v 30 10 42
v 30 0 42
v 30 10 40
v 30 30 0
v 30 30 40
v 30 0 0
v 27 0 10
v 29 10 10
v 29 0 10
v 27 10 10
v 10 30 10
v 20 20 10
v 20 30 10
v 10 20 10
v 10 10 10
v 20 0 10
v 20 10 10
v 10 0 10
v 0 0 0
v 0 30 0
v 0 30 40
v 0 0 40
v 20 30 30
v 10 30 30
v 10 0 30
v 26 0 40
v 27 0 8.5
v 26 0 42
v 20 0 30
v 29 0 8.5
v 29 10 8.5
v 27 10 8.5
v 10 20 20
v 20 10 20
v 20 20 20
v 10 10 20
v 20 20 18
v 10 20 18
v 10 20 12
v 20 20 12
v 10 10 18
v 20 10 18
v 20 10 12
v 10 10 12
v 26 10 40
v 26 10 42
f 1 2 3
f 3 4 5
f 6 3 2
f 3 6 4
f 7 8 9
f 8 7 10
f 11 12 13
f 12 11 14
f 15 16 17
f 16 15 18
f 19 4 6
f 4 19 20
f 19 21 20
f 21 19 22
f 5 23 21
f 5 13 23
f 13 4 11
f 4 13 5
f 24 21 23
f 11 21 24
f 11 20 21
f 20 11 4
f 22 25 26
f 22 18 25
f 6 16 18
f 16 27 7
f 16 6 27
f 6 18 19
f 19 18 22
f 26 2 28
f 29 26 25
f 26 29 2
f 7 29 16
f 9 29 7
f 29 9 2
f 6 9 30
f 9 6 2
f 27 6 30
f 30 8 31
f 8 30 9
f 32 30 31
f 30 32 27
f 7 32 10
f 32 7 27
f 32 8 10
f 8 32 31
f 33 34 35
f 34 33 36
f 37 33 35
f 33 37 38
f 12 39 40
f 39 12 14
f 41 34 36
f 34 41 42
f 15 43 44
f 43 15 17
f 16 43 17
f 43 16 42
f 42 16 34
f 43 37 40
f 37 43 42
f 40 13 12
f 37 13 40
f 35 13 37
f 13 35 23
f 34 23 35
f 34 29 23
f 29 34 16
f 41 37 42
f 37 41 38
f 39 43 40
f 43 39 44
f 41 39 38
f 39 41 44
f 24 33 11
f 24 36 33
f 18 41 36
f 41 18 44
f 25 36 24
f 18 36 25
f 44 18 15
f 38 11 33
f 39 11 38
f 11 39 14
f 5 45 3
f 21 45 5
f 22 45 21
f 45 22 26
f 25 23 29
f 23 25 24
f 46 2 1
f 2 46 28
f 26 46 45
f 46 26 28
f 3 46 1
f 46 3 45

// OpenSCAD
// Base block
module base_block() {
    difference() {
        cube([30, 30, 10], center = false);
        // Adjusted notch: smaller and positioned closer to the top edge
        translate([27, 0, 8.5]) cube([2, 10, 1.5], center = false); // Notch
    }
}

// Top block
module top_block() {
    union() {
        cube([30, 30, 10], center = false);
        // Adjusted protrusion: extended outward and positioned near the top edge
        translate([26, 0, 10]) cube([4, 10, 2], center = false); // Protrusion
    }
}

// Side block
module side_block() {
    difference() {
        cube([10, 30, 30], center = false);
        // Adjusted cutout: shallower and positioned closer to the top edge
        translate([0, 0, 24]) cube([10, 10, 6], center = false); // Cutout
    }
}

// Connector block
module connector_block() {
    difference() {
        cube([30, 10, 10], center = false);
        // Adjusted groove: widened and more recessed
        translate([10, 0, 2]) cube([10, 10, 6], center = false); // Groove
    }
}

// Assembly
module assembly() {
    // Layer 4: Base block
    base_block();

    // Layer 3: Connector block
    translate([0, 10, 10]) connector_block();

    // Layer 2: Side blocks
    translate([0, 0, 10]) side_block();
    translate([20, 0, 10]) side_block();

    // Layer 1: Top block
    translate([0, 0, 30]) top_block();
}

// Render the assembly
assembly();
